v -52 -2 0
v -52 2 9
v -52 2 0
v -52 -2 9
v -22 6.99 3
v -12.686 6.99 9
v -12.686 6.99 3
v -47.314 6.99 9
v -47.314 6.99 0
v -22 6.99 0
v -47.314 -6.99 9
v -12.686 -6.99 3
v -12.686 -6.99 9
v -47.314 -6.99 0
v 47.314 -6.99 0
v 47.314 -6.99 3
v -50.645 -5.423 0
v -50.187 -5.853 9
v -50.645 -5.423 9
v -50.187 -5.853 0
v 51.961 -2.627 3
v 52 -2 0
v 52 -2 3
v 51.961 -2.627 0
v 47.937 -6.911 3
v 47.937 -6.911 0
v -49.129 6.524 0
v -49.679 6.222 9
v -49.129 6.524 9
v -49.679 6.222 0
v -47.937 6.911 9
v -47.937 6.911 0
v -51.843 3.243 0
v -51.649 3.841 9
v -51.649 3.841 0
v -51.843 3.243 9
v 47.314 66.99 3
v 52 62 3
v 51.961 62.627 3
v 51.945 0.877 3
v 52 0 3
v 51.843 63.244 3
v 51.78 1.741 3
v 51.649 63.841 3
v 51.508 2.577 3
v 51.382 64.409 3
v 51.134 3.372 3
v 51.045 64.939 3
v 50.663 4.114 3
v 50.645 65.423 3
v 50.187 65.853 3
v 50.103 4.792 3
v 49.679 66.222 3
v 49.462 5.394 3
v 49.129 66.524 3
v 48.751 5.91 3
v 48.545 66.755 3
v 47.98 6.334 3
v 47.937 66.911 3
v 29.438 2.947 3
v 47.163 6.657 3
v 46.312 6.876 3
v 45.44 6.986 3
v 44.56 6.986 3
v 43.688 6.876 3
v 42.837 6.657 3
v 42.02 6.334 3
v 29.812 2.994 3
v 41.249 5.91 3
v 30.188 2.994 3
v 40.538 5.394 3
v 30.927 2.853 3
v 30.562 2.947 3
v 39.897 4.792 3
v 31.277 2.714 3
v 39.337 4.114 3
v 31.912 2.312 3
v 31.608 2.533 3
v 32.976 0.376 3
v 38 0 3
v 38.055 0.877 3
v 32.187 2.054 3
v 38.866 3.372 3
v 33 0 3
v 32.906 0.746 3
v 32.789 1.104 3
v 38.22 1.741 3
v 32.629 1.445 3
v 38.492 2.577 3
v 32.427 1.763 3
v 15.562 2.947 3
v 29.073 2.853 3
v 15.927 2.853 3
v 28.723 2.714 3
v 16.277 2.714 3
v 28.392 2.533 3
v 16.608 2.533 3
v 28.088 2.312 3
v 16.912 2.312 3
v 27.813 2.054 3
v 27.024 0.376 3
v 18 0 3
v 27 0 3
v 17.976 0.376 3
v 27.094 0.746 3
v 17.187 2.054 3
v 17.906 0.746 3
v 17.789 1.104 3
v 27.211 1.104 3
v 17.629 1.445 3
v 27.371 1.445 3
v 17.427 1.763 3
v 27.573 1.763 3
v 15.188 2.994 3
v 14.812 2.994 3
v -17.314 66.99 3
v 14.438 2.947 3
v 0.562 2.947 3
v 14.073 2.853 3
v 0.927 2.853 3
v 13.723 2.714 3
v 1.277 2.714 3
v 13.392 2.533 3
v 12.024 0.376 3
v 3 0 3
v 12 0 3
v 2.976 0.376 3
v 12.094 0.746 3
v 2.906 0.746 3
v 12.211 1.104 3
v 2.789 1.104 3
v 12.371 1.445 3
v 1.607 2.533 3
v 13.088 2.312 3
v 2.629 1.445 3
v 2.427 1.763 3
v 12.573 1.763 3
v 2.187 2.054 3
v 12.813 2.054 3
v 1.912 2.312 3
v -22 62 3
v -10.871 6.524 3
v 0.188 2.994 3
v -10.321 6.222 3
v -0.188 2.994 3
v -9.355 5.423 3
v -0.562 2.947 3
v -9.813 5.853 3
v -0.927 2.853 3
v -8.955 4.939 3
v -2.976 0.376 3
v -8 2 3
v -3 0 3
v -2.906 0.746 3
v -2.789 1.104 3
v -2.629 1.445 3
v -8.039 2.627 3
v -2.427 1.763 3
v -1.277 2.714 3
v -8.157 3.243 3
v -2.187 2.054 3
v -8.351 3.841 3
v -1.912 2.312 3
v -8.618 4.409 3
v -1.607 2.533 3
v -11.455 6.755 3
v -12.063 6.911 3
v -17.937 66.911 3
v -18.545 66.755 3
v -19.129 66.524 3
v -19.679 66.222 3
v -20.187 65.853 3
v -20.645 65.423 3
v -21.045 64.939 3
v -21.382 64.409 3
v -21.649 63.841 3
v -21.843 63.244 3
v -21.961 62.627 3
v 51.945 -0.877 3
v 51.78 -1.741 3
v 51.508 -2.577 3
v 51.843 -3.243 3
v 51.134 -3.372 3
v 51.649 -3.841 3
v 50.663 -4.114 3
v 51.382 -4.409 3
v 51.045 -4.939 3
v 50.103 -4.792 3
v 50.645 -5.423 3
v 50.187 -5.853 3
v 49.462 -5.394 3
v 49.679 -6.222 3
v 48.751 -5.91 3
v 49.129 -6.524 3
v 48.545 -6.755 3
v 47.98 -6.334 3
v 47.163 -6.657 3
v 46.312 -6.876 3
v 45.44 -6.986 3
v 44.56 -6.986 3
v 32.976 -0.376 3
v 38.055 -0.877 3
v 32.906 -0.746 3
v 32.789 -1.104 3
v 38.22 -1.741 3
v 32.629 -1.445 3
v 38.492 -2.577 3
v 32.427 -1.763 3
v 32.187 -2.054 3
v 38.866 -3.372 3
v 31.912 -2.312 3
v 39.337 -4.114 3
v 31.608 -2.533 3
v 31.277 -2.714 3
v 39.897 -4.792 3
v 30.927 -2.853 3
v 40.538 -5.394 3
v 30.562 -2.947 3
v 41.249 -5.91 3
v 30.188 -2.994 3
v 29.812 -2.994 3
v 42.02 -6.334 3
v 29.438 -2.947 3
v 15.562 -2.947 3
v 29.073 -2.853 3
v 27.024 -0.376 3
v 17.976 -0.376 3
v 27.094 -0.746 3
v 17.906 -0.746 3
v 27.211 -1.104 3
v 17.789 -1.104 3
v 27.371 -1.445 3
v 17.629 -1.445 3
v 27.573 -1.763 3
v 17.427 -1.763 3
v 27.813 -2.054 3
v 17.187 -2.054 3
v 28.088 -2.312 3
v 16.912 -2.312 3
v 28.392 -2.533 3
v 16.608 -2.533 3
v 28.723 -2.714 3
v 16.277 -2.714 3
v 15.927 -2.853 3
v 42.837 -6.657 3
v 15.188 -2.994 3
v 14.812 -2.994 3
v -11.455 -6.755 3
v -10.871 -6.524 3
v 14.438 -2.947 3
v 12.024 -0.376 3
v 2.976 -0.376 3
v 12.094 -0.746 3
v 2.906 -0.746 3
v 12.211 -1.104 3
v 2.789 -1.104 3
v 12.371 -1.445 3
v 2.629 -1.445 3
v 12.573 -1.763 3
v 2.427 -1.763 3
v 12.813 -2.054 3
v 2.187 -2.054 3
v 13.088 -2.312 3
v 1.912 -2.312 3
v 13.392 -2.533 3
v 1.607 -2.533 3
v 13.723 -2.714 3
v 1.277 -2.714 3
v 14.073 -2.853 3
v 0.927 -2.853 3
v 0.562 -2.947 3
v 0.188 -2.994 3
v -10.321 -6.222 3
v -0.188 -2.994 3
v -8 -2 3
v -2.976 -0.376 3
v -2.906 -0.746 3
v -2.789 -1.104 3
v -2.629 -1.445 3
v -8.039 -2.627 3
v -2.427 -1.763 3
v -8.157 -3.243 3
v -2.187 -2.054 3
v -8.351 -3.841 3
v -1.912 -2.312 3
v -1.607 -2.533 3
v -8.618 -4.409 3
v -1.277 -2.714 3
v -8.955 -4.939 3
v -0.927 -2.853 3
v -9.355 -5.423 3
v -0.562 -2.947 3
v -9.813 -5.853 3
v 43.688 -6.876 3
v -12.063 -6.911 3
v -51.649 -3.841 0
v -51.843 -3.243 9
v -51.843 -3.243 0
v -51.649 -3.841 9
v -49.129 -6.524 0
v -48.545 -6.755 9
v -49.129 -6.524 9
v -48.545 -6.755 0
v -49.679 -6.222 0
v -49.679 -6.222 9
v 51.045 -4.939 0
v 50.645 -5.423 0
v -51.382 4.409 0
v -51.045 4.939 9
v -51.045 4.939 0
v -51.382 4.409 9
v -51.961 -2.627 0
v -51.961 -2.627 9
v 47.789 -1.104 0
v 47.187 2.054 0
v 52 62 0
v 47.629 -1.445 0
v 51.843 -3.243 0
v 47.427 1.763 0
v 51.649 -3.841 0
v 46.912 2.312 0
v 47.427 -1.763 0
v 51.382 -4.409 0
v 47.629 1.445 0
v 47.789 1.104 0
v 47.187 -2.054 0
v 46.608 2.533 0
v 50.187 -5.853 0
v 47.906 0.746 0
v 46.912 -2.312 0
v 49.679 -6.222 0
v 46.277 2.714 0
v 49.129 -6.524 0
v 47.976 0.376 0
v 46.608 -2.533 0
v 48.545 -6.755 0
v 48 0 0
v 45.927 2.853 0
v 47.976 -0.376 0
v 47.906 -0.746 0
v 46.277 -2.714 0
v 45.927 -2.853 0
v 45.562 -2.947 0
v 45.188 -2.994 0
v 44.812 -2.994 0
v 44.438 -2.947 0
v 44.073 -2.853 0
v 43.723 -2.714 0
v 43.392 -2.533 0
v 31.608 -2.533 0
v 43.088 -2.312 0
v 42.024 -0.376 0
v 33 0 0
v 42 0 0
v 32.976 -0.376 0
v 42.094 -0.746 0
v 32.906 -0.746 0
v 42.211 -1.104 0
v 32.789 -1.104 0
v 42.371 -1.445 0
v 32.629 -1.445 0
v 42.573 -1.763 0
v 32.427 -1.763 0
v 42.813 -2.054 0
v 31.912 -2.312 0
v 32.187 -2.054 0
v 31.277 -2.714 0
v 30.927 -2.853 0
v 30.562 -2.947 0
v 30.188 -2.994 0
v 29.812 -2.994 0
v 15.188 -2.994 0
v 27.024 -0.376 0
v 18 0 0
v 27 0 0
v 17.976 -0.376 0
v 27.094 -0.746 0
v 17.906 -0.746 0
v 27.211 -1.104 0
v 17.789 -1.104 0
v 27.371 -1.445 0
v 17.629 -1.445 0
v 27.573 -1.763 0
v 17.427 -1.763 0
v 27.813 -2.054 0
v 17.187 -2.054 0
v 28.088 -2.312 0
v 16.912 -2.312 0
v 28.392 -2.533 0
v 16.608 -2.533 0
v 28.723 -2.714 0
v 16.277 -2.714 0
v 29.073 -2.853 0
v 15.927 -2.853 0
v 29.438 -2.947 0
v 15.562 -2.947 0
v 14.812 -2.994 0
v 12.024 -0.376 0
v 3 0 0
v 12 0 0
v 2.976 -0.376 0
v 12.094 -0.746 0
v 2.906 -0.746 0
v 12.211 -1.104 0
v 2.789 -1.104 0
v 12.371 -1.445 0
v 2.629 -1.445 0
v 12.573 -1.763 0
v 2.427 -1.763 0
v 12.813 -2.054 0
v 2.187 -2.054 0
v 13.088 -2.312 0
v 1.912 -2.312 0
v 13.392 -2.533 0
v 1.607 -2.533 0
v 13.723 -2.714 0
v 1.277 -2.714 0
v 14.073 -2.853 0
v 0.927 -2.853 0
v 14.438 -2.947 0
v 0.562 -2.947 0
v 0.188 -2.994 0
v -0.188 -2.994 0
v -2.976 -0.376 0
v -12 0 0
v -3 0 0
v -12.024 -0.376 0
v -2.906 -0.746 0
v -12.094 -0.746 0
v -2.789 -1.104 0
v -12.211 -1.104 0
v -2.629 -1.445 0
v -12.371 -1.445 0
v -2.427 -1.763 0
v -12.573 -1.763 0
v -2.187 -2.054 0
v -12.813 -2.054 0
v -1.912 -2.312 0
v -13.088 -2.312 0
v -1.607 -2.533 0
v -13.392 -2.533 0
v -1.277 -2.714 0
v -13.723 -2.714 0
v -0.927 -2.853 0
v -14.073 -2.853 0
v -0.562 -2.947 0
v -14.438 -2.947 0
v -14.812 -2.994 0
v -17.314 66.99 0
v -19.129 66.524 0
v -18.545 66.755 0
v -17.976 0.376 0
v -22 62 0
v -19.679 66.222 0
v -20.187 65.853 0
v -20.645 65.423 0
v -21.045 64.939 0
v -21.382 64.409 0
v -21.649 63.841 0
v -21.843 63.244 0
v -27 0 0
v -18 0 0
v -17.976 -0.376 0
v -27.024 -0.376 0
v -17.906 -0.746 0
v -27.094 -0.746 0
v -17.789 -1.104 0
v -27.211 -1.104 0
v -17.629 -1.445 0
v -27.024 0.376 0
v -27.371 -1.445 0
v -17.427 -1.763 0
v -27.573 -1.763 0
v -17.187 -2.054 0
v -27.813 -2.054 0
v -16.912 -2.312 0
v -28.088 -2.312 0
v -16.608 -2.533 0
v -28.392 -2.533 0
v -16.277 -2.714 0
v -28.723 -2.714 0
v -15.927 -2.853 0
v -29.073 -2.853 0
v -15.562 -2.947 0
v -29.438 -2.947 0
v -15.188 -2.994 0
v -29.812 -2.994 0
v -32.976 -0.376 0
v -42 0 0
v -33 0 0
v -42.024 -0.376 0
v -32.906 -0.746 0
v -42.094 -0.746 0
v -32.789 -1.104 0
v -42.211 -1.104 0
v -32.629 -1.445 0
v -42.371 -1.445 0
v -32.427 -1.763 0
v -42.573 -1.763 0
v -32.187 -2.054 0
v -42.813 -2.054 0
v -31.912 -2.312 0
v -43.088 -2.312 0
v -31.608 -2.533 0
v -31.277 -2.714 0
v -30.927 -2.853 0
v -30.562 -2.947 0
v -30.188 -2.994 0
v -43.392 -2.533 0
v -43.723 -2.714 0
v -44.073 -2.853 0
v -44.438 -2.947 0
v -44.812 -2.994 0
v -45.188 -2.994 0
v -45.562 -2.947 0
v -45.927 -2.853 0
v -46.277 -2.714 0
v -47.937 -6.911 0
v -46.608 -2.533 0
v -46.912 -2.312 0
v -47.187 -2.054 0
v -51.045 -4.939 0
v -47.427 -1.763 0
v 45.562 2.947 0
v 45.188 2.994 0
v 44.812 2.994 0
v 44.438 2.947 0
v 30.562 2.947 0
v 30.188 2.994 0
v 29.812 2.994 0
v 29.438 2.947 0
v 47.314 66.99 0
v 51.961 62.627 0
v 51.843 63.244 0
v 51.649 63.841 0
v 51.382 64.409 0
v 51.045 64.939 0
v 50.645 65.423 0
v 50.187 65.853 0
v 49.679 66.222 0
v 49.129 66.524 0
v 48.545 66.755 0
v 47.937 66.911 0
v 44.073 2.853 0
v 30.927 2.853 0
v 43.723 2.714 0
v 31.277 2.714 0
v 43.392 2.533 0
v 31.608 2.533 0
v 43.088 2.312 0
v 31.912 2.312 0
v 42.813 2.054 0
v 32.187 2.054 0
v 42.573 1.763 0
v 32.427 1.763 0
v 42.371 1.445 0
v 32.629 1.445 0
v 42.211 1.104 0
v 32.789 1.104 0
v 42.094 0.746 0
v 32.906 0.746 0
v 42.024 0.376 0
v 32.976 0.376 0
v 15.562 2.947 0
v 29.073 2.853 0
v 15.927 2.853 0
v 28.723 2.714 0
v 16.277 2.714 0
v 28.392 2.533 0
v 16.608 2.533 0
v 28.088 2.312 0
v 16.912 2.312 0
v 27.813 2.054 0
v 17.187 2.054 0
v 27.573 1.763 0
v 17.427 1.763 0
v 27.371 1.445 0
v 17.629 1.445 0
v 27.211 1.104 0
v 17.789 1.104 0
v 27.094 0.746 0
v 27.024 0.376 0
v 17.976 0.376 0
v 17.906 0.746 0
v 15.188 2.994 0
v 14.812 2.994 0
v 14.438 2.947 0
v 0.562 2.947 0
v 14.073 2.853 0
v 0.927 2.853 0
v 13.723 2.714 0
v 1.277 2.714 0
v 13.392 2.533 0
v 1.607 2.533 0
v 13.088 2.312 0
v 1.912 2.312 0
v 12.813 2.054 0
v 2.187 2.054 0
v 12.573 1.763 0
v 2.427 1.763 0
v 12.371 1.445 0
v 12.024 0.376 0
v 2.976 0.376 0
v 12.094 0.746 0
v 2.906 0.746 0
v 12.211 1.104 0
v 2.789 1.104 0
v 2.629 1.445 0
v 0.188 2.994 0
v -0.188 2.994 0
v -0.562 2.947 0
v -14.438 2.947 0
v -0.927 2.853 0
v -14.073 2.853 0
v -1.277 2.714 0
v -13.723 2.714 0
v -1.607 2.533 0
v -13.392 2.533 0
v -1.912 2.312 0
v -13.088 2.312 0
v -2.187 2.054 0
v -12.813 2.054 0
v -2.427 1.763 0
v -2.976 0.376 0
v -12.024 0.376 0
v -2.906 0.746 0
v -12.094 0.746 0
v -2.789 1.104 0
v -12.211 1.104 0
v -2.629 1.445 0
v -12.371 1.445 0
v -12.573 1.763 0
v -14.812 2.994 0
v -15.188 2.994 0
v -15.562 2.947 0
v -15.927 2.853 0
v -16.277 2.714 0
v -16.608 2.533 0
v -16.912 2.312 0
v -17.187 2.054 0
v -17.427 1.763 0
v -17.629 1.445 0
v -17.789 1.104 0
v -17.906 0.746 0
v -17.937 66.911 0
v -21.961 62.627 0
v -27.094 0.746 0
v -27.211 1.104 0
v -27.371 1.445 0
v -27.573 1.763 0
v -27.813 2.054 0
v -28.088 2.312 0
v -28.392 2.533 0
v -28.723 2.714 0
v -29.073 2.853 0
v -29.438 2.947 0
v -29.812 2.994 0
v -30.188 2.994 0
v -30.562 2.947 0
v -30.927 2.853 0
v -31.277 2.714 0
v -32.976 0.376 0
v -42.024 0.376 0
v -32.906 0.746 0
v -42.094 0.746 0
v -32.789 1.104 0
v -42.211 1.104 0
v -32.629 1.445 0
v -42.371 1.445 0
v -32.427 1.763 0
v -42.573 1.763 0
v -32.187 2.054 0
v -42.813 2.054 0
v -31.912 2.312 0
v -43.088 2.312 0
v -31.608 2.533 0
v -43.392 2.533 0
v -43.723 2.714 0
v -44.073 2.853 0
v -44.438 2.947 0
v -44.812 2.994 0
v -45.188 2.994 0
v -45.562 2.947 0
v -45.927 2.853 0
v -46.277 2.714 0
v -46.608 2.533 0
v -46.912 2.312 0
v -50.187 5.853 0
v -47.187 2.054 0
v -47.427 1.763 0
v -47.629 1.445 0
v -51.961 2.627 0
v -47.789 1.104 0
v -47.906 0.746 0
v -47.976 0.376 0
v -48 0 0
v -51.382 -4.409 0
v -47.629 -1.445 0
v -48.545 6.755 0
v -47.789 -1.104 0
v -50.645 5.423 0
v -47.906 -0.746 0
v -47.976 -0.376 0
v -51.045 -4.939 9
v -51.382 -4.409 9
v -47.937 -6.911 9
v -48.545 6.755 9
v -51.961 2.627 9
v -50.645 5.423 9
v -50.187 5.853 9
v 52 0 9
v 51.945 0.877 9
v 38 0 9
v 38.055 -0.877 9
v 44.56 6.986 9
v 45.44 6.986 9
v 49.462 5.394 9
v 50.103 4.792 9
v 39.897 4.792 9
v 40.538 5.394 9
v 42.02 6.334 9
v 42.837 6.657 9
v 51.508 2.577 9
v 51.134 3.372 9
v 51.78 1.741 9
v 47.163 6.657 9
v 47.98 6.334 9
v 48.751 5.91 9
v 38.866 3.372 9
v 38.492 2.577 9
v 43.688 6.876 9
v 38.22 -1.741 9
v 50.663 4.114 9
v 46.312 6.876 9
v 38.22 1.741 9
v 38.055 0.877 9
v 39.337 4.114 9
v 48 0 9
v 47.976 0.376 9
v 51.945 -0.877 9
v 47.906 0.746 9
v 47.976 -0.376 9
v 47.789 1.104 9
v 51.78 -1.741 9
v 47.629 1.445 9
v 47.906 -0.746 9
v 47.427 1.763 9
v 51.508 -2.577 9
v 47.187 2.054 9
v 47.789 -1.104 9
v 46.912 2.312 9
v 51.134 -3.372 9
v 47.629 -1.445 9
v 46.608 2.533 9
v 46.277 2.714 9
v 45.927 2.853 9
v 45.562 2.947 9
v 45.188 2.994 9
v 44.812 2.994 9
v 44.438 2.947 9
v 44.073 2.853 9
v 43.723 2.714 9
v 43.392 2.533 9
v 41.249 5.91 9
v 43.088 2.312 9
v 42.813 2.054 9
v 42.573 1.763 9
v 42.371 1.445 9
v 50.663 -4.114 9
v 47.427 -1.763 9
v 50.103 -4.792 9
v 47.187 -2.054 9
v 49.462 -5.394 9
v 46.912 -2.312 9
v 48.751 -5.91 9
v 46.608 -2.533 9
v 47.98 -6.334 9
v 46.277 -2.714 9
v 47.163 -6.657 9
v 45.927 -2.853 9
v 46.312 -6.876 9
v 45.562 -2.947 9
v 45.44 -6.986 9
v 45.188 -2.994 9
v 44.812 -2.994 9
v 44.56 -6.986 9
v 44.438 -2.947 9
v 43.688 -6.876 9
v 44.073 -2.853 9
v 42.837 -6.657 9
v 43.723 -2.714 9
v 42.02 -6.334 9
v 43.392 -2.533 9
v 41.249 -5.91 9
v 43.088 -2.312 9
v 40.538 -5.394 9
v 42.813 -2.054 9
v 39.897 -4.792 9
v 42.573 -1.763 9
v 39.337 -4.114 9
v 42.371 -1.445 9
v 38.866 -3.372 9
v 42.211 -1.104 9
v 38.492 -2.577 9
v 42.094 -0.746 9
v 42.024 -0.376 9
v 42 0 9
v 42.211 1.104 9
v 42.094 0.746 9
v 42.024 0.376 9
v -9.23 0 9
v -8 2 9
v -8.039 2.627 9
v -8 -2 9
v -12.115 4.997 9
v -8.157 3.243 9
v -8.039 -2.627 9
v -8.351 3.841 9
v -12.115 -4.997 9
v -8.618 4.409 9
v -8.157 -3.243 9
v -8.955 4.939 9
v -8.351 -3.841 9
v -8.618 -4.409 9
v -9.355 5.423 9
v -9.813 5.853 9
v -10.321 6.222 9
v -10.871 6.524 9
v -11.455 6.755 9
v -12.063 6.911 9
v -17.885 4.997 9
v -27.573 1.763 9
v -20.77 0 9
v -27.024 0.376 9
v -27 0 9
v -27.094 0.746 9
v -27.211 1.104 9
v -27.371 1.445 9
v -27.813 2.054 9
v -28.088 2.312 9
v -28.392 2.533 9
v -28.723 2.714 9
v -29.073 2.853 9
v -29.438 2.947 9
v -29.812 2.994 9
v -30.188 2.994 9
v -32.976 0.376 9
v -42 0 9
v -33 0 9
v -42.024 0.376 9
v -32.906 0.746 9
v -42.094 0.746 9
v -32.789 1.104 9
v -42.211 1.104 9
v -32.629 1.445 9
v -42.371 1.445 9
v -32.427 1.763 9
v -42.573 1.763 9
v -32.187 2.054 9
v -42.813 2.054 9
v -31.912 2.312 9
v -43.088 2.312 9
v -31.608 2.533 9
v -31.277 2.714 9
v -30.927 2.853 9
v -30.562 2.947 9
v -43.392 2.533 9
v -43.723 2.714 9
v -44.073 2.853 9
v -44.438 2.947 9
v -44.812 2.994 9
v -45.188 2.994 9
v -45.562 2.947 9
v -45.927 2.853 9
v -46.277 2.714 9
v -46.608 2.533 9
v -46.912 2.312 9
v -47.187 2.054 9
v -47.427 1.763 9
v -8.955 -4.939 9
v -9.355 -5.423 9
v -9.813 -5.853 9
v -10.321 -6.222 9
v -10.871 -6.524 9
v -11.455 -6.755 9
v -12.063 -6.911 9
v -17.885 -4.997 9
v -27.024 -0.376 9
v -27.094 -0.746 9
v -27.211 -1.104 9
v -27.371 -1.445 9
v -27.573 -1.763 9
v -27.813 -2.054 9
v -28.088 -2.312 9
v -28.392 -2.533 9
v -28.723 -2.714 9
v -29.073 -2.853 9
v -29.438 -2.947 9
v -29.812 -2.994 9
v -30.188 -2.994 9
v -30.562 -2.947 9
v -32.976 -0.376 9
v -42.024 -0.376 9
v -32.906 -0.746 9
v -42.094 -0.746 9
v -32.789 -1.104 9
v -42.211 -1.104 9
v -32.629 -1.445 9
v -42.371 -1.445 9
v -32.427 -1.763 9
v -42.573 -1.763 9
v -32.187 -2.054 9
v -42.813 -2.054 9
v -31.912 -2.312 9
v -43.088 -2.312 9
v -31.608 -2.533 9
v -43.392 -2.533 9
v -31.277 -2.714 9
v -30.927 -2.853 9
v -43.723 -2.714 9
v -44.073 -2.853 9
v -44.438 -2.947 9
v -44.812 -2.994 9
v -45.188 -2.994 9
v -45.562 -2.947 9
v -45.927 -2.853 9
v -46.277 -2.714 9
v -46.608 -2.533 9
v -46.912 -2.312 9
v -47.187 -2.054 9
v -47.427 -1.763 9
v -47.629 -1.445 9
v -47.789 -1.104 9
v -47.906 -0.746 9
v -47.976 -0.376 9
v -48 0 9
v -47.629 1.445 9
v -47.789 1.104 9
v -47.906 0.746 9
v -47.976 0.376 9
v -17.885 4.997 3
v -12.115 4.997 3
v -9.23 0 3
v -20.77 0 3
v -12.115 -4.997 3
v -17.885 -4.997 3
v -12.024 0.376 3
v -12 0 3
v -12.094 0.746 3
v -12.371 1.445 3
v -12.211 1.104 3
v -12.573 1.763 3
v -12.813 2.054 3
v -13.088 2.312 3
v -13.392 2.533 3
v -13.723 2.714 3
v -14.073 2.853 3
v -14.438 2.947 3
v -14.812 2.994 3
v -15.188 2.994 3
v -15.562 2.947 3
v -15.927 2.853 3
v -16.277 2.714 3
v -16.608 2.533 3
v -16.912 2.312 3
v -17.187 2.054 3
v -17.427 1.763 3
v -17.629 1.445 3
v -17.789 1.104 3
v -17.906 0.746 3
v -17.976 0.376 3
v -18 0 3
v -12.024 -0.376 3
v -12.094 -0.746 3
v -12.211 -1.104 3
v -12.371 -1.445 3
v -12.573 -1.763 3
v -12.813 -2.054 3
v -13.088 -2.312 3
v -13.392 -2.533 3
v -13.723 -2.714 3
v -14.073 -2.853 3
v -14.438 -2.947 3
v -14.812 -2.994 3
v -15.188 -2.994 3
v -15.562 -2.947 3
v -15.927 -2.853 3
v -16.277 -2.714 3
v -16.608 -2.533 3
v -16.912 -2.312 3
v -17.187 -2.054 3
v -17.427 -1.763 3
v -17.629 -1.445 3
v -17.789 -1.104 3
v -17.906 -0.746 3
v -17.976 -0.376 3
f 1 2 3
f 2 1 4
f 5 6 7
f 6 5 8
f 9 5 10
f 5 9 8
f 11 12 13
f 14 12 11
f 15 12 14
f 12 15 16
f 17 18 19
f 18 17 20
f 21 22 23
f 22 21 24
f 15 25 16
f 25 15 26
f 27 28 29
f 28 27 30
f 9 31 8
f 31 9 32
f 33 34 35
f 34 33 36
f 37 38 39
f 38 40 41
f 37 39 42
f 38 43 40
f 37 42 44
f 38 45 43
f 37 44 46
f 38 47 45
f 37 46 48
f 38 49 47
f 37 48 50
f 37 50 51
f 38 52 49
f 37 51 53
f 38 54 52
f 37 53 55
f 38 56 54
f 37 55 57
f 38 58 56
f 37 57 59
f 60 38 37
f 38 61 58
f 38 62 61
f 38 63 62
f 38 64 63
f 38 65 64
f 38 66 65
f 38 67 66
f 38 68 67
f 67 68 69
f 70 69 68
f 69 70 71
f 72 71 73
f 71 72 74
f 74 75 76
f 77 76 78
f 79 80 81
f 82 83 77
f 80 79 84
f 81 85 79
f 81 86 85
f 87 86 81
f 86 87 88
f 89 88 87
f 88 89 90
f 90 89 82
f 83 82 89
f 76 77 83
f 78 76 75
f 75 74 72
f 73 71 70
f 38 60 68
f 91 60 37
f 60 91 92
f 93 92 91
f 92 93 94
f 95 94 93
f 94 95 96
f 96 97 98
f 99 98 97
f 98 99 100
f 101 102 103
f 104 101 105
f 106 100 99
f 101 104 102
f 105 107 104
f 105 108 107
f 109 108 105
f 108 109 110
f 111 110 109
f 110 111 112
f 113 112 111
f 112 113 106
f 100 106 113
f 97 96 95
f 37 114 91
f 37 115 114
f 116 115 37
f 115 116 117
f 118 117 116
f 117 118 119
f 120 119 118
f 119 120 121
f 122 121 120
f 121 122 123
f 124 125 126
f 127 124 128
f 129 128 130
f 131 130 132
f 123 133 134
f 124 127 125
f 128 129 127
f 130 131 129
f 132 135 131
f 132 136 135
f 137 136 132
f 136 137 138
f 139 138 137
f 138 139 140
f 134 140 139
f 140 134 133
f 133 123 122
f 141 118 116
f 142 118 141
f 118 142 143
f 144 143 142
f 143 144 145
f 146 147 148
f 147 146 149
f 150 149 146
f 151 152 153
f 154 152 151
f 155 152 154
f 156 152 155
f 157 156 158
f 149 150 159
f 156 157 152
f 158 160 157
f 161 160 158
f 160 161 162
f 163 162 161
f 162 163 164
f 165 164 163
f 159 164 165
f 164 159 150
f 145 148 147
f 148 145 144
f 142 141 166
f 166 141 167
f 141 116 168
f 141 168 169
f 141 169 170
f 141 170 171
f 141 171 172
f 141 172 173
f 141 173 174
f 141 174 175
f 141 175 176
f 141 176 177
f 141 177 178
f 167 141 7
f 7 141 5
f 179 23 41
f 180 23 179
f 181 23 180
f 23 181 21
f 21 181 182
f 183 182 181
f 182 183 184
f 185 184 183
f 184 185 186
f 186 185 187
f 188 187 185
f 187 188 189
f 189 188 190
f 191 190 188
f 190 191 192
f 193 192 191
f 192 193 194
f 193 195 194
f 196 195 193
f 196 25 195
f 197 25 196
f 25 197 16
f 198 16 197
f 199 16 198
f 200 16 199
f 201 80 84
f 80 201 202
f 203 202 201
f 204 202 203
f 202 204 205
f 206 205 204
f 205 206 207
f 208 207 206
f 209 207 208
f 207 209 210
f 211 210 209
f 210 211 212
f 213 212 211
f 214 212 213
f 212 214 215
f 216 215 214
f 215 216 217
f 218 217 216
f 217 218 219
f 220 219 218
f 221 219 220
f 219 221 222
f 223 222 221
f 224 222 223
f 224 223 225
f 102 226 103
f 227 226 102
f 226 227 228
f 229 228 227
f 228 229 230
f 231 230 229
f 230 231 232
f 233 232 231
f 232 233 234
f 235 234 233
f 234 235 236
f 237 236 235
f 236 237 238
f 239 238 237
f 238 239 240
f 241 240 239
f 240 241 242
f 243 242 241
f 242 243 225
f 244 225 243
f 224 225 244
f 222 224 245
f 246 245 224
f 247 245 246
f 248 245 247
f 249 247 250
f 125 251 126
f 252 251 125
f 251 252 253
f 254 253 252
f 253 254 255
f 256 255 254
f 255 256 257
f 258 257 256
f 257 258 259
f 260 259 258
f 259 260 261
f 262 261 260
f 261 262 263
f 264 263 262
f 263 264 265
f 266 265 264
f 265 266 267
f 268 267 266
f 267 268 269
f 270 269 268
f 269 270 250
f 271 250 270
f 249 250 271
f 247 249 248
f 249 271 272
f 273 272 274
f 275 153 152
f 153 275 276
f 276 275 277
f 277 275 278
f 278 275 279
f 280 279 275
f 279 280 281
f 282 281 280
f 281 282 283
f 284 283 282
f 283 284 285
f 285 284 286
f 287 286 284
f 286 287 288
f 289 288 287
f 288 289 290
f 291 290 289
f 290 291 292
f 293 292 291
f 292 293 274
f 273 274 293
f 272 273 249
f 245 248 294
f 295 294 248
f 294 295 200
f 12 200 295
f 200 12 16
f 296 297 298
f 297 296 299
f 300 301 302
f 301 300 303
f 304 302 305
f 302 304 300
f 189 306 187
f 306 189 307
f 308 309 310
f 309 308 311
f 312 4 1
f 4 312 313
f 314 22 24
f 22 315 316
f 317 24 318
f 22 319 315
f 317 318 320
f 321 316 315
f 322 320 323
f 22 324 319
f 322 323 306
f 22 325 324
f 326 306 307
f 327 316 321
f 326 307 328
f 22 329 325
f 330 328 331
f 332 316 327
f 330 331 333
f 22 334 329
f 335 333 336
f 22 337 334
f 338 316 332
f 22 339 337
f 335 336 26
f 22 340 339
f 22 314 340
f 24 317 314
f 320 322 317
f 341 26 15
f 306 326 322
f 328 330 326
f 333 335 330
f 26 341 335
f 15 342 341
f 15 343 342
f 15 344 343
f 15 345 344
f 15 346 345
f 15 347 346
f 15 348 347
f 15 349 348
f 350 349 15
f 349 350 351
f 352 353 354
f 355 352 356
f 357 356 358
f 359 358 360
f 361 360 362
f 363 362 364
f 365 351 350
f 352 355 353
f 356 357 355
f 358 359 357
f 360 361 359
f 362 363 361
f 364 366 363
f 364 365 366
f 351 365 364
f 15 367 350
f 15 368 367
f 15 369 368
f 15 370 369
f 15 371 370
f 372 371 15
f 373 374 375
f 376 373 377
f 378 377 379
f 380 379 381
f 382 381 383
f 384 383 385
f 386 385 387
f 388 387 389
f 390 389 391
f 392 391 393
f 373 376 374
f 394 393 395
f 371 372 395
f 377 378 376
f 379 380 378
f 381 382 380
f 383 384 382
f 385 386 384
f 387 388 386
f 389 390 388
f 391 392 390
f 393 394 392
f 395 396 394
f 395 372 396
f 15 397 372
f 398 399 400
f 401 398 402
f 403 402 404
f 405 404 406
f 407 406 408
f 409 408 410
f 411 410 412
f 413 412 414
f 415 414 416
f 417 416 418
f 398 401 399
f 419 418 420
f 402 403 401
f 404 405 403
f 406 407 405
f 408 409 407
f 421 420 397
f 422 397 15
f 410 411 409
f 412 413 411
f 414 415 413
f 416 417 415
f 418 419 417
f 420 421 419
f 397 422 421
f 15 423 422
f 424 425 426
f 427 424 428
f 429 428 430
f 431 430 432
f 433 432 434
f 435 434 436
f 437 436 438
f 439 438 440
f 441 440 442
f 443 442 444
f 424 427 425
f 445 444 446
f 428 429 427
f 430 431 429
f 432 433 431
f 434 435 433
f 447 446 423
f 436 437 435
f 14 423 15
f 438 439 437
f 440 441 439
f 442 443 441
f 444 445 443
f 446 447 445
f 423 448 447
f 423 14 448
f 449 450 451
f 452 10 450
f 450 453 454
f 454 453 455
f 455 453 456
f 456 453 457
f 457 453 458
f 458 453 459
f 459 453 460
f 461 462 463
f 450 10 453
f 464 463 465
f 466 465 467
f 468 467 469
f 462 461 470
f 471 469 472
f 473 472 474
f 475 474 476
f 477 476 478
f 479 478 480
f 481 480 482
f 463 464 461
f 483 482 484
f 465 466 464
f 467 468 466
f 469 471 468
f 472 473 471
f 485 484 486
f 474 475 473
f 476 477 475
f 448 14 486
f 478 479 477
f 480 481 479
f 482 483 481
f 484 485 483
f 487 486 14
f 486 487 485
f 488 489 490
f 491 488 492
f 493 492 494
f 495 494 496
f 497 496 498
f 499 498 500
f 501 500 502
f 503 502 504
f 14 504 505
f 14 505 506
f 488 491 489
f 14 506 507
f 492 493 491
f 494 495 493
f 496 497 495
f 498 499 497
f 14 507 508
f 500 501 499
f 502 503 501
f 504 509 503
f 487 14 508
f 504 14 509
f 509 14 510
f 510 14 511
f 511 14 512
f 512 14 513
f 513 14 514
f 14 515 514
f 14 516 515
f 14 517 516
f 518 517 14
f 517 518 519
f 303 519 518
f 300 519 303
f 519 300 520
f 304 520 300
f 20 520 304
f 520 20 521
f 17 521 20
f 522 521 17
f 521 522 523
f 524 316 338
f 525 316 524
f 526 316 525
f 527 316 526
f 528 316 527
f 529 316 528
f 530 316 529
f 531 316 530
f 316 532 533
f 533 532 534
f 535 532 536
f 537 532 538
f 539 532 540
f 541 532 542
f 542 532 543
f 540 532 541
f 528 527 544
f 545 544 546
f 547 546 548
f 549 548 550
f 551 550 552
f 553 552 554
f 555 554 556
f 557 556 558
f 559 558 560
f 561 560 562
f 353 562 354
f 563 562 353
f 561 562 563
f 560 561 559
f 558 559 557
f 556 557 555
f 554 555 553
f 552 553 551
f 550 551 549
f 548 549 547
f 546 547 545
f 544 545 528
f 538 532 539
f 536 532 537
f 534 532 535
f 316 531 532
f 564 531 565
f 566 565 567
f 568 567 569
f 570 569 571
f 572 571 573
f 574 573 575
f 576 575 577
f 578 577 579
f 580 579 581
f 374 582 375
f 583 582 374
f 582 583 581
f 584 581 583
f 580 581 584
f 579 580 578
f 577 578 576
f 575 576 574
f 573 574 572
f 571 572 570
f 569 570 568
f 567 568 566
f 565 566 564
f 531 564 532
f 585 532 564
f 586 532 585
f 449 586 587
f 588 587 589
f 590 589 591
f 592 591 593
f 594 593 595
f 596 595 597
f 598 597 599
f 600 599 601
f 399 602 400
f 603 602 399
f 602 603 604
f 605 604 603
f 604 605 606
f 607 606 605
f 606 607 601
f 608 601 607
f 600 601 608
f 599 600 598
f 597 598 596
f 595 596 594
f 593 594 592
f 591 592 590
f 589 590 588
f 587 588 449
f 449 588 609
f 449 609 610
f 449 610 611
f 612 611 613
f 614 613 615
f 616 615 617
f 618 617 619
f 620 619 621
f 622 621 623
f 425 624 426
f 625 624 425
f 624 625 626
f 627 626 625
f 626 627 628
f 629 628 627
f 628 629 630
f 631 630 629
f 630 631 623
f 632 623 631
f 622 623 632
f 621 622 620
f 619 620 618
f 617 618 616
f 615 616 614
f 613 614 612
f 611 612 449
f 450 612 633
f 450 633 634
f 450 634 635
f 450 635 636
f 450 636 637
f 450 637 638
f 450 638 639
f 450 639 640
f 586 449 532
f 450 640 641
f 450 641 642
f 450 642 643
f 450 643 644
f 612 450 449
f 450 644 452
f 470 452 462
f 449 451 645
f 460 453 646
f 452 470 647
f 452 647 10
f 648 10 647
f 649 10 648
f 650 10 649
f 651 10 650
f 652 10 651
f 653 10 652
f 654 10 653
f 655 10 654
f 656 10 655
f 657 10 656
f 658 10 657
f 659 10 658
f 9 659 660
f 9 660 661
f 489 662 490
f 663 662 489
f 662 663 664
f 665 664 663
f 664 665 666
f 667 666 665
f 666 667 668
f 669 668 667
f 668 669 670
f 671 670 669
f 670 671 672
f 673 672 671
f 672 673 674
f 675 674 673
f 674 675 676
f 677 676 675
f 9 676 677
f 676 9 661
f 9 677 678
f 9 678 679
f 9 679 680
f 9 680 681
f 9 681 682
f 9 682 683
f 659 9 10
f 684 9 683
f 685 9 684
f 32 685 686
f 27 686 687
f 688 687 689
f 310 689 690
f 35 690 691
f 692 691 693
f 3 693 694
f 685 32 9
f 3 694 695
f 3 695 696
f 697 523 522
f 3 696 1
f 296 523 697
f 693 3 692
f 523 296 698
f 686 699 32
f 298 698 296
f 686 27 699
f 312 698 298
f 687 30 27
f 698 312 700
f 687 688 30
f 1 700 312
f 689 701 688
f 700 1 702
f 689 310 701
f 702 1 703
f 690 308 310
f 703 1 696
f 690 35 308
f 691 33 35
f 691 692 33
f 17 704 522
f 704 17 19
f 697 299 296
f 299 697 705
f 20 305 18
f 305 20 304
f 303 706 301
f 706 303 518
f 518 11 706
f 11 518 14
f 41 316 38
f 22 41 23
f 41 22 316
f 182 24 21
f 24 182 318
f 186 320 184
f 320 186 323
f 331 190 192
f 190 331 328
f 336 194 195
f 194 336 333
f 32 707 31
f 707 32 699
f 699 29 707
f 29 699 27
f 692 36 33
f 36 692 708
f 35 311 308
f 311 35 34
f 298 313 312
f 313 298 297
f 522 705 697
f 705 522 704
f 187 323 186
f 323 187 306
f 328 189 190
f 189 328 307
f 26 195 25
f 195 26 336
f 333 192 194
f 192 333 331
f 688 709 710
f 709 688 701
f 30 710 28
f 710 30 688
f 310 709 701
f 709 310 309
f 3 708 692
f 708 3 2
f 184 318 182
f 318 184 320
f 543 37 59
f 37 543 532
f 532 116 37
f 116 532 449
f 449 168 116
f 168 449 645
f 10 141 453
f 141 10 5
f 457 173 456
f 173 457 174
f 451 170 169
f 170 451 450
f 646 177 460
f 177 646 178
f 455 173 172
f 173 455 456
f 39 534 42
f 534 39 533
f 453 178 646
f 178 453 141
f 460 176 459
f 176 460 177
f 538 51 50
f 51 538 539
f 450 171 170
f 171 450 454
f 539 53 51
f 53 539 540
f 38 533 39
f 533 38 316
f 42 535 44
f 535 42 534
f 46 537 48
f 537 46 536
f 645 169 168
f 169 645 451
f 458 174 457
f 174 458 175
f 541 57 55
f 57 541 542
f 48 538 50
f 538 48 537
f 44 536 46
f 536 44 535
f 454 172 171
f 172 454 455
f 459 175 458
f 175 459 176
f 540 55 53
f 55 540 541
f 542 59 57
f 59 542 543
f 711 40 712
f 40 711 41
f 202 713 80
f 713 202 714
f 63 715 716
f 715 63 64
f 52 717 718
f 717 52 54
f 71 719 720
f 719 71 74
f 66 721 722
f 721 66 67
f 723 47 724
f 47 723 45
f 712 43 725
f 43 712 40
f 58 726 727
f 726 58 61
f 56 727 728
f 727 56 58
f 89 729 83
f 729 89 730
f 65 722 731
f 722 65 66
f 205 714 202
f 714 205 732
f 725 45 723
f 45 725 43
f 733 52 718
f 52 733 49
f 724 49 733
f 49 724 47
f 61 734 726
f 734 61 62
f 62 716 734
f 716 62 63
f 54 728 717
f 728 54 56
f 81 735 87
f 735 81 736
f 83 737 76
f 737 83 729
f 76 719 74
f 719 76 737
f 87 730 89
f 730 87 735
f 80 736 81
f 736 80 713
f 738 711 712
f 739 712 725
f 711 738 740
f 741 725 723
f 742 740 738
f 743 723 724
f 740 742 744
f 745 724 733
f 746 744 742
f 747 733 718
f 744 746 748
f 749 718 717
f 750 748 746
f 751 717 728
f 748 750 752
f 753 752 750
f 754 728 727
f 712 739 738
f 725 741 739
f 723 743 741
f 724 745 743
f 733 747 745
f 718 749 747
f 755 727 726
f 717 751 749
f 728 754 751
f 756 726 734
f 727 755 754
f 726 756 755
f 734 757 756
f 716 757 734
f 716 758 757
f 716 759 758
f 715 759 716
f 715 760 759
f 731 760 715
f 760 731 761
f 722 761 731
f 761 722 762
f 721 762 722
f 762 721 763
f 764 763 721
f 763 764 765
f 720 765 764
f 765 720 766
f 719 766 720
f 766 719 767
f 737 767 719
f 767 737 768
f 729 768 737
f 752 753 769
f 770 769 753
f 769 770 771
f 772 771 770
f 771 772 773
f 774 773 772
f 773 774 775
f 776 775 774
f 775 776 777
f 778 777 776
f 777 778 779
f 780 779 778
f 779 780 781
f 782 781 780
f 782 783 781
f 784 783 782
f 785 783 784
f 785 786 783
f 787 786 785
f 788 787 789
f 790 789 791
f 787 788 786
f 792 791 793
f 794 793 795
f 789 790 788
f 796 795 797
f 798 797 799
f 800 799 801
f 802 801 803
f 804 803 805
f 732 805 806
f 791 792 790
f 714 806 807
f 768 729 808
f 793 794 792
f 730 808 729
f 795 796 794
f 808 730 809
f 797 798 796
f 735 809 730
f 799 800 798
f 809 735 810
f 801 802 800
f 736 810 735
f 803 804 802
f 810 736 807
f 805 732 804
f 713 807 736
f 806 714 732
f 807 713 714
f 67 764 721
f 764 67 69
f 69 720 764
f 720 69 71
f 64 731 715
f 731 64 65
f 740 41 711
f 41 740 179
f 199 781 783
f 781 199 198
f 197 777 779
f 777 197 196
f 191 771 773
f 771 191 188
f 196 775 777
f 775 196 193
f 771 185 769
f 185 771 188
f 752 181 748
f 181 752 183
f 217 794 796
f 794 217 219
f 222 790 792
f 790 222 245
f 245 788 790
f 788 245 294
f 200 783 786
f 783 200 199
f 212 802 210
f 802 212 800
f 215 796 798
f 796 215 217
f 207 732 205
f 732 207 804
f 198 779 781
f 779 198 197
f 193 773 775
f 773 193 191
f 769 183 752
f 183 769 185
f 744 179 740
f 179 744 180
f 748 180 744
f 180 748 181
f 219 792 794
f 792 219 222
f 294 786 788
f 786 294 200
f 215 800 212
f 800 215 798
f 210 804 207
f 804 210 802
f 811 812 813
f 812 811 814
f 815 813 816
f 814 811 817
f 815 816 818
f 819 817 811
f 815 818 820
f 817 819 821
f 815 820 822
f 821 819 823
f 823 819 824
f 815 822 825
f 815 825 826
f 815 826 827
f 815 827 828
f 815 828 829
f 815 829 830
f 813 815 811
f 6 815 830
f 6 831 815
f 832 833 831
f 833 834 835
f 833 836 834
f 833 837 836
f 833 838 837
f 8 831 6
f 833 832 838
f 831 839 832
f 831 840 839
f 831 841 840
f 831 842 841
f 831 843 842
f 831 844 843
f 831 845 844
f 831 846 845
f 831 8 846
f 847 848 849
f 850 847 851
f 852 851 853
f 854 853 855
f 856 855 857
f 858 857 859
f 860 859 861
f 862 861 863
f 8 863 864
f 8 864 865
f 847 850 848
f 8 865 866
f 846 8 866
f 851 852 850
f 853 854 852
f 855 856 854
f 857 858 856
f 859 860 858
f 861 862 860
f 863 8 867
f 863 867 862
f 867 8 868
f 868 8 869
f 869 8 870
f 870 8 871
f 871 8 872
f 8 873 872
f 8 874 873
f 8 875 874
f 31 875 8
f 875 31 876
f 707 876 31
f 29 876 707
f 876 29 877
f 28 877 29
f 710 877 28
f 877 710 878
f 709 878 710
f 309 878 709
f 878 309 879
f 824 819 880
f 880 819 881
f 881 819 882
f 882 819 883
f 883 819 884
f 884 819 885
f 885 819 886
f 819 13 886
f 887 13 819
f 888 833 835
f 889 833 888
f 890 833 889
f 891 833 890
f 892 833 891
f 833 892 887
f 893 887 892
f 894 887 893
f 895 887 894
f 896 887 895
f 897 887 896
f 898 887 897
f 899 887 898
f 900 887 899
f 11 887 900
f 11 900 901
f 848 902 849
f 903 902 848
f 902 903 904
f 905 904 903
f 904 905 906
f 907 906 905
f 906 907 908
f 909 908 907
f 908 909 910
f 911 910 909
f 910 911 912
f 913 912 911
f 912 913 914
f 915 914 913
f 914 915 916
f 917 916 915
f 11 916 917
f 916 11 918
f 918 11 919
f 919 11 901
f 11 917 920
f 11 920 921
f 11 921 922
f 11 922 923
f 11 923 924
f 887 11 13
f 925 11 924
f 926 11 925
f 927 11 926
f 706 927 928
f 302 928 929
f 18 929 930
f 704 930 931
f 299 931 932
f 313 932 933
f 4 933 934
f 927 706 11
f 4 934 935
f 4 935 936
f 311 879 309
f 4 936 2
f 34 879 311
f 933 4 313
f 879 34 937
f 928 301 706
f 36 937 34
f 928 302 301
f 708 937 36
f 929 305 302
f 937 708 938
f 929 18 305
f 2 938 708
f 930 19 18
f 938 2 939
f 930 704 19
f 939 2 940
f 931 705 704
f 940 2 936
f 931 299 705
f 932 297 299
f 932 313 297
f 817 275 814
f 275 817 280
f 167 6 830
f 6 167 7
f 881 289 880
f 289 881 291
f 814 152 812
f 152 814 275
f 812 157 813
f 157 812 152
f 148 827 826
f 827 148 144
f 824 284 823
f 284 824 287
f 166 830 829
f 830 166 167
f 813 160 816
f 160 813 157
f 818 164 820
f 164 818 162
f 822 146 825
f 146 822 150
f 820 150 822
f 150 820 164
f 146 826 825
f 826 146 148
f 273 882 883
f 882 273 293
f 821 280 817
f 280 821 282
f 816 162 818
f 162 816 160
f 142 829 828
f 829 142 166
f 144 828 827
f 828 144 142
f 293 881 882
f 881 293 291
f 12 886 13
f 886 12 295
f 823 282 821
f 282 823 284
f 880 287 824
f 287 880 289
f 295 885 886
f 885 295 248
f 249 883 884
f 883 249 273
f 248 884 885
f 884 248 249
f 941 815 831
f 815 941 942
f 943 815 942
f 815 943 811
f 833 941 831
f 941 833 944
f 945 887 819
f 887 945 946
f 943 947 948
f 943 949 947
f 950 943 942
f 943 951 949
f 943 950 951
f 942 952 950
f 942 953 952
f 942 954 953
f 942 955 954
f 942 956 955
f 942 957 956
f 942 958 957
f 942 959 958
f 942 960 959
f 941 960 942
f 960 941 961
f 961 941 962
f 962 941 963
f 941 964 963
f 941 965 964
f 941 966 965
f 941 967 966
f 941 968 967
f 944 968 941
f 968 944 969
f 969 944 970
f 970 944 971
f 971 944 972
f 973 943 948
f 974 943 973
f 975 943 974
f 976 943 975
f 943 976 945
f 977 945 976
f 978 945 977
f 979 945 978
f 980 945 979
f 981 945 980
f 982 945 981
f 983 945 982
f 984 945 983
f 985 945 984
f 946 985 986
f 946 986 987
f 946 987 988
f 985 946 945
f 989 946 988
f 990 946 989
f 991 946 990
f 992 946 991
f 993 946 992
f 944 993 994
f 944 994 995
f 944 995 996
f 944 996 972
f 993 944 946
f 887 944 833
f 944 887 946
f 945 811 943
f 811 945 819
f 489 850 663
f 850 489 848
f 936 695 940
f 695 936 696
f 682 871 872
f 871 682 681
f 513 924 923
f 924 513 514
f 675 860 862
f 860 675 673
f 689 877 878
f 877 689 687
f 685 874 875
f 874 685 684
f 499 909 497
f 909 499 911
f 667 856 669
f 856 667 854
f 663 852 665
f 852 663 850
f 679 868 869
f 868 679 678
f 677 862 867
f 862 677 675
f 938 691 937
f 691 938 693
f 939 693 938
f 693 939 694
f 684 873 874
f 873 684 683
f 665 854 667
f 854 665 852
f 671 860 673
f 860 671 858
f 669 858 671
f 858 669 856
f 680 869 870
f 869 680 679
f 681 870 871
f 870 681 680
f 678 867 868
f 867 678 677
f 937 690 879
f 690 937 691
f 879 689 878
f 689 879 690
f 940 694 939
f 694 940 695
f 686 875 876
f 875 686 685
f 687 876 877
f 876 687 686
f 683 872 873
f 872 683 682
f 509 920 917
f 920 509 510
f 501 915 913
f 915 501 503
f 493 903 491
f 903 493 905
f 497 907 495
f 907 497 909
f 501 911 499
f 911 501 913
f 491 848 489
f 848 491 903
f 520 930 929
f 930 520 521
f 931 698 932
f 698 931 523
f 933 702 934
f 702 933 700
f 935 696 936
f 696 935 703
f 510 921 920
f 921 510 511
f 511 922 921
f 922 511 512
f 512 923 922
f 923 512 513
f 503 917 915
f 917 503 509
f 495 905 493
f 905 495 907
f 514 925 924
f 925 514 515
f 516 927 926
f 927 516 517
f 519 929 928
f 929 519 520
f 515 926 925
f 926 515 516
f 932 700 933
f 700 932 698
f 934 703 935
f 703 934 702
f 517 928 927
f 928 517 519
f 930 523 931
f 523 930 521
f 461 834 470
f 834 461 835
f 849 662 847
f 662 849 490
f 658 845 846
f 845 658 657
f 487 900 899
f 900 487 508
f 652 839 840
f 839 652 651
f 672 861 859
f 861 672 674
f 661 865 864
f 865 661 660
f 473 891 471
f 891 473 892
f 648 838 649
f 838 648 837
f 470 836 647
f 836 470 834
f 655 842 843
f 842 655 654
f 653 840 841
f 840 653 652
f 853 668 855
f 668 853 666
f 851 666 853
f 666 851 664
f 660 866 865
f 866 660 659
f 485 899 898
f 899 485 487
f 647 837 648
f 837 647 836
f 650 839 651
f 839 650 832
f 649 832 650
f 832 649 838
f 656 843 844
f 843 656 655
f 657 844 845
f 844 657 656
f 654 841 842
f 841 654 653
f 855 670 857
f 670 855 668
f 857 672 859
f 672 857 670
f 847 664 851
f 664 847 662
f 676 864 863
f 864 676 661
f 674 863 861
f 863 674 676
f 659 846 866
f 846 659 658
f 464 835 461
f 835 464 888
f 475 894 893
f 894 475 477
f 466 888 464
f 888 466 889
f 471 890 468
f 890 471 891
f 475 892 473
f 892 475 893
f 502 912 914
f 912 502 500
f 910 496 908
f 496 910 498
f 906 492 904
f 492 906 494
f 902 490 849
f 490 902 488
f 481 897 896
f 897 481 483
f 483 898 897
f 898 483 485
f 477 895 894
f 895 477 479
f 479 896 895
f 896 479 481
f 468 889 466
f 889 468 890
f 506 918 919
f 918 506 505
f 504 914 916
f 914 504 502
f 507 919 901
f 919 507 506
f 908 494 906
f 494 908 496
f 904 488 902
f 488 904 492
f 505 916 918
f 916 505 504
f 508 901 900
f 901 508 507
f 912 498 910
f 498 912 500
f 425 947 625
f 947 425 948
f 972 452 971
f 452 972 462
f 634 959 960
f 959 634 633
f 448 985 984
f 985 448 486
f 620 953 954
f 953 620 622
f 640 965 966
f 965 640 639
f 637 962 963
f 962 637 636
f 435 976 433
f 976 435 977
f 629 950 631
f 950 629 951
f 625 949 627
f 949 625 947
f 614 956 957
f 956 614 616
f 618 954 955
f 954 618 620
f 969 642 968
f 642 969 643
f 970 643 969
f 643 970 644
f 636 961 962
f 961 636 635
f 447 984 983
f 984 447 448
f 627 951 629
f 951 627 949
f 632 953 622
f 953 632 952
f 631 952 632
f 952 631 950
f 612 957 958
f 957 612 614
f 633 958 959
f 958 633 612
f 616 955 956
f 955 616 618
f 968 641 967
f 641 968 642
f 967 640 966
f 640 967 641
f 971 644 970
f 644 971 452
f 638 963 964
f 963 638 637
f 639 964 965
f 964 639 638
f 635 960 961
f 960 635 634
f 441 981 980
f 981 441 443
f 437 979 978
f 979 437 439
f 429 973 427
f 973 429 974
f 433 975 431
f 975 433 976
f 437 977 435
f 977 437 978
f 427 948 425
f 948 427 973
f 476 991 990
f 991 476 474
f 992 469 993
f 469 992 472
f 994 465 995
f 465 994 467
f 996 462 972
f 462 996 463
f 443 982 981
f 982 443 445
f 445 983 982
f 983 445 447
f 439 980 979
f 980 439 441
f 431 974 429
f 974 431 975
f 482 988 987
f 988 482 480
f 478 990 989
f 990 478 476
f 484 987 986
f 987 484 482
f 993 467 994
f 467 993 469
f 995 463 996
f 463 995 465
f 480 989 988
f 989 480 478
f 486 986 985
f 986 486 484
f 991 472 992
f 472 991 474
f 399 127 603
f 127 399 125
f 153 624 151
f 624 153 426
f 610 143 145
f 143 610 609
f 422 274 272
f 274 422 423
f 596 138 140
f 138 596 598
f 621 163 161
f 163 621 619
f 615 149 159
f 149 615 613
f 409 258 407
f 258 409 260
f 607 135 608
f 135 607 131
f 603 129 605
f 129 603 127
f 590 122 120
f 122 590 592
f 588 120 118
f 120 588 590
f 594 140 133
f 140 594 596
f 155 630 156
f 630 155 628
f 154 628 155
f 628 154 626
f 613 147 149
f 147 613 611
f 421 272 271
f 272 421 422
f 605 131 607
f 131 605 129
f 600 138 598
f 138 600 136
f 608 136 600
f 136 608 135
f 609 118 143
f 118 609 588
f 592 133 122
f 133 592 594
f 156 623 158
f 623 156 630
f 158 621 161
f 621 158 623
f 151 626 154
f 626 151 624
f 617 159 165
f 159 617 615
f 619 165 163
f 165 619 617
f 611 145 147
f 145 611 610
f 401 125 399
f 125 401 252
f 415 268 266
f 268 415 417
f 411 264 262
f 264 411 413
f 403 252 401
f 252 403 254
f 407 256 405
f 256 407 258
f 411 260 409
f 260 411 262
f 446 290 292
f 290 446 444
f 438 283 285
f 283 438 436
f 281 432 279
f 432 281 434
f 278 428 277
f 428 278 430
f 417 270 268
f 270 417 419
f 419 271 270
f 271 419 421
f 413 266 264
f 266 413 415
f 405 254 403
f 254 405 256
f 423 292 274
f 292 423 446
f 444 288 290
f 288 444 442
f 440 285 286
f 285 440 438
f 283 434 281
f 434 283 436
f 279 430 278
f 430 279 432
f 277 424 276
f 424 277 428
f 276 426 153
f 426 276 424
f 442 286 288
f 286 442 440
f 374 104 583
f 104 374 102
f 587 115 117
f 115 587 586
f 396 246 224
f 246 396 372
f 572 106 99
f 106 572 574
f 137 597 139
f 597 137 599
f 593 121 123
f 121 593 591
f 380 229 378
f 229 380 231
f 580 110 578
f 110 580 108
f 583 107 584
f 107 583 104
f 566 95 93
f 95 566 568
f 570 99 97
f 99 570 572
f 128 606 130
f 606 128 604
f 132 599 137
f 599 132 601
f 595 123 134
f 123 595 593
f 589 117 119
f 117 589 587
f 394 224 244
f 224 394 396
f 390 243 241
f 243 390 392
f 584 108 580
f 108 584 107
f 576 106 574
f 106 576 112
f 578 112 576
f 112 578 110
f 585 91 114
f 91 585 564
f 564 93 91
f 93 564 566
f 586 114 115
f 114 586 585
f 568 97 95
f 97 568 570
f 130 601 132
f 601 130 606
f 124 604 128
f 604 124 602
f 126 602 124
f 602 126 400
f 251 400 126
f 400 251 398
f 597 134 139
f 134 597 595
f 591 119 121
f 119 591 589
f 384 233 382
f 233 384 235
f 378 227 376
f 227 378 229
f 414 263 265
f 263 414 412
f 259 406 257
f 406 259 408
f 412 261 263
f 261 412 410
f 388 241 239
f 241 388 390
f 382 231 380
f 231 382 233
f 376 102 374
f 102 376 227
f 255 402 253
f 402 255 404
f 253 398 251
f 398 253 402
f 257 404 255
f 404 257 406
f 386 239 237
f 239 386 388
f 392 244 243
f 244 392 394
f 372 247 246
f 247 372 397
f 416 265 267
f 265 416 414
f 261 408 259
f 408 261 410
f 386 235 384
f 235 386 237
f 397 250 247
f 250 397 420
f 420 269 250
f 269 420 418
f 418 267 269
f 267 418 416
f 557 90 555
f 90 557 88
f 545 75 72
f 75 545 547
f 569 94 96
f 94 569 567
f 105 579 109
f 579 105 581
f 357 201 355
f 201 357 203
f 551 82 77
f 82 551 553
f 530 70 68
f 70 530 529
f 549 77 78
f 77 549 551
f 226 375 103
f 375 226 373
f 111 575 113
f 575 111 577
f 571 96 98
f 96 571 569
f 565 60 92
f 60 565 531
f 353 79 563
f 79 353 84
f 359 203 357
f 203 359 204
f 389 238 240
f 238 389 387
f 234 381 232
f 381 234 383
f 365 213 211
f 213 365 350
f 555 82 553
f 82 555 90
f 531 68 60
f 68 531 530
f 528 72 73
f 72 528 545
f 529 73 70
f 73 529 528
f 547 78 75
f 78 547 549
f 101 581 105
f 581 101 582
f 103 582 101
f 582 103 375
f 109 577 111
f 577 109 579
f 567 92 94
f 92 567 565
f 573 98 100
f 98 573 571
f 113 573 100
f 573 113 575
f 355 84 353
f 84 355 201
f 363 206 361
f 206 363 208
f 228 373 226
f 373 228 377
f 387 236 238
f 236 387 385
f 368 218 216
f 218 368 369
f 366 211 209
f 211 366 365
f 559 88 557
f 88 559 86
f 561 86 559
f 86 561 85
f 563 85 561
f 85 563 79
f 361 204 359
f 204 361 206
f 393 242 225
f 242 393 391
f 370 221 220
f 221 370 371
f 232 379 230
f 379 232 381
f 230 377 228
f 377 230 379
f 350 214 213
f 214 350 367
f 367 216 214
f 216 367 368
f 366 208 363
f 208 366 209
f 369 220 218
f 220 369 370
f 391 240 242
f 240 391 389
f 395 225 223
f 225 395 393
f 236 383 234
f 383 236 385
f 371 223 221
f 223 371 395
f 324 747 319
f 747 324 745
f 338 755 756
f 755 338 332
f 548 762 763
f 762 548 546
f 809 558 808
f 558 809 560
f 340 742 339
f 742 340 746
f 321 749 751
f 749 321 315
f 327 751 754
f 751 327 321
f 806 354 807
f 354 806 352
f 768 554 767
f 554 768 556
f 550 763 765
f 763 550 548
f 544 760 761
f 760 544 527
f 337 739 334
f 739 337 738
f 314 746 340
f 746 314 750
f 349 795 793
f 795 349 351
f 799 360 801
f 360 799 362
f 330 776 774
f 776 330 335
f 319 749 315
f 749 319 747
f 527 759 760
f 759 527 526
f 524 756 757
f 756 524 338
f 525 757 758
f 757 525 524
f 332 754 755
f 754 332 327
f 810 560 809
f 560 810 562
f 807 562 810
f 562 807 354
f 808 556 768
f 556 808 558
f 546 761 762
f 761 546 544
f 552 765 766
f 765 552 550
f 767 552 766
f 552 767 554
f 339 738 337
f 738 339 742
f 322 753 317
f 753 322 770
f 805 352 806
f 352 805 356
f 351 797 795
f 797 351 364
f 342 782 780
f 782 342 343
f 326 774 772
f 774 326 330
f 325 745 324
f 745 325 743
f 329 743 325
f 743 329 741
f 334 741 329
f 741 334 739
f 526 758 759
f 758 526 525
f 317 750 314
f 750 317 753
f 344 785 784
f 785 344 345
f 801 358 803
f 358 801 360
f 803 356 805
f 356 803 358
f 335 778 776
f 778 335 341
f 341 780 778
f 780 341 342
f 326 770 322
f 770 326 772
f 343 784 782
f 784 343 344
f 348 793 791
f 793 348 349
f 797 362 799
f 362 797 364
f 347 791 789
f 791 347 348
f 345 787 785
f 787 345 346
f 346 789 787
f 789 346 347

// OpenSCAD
$fn = 50;


difference() {
	union() {
		hull() {
			translate(v = [-47.0000000000, 2.0000000000, 0]) {
				cylinder(h = 3, r = 5);
			}
			translate(v = [47.0000000000, 2.0000000000, 0]) {
				cylinder(h = 3, r = 5);
			}
			translate(v = [-47.0000000000, -2.0000000000, 0]) {
				cylinder(h = 3, r = 5);
			}
			translate(v = [47.0000000000, -2.0000000000, 0]) {
				cylinder(h = 3, r = 5);
			}
		}
		translate(v = [15, 30, 0]) {
			hull() {
				translate(v = [-32.0000000000, 32.0000000000, 0]) {
					cylinder(h = 3, r = 5);
				}
				translate(v = [32.0000000000, 32.0000000000, 0]) {
					cylinder(h = 3, r = 5);
				}
				translate(v = [-32.0000000000, -32.0000000000, 0]) {
					cylinder(h = 3, r = 5);
				}
				translate(v = [32.0000000000, -32.0000000000, 0]) {
					cylinder(h = 3, r = 5);
				}
			}
		}
		translate(v = [45.0000000000, 0, 0]) {
			cylinder(h = 9, r = 7.0000000000);
		}
		translate(v = [-30.0000000000, 0, 0]) {
			hull() {
				translate(v = [-17.0000000000, 2.0000000000, 0]) {
					cylinder(h = 9, r = 5);
				}
				translate(v = [17.0000000000, 2.0000000000, 0]) {
					cylinder(h = 9, r = 5);
				}
				translate(v = [-17.0000000000, -2.0000000000, 0]) {
					cylinder(h = 9, r = 5);
				}
				translate(v = [17.0000000000, -2.0000000000, 0]) {
					cylinder(h = 9, r = 5);
				}
			}
		}
	}
	union() {
		translate(v = [-15.0000000000, 0, 9]) {
			rotate(a = [0, 0, 0]) {
				difference() {
					union() {
						translate(v = [0, 0, -6]) {
							linear_extrude(height = 6) {
								polygon(points = [[5.7700000000, 0.0000000000], [2.8850000000, 4.9969665798], [-2.8850000000, 4.9969665798], [-5.7700000000, 0.0000000000], [-2.8850000000, -4.9969665798], [2.8850000000, -4.9969665798]]);
							}
						}
					}
					union();
				}
			}
		}
		translate(v = [-45.0000000000, 0.0000000000, 0]) {
			translate(v = [0, 0, -100]) {
				cylinder(h = 200, r = 3.0000000000);
			}
		}
		translate(v = [-30.0000000000, 0.0000000000, 0]) {
			translate(v = [0, 0, -100]) {
				cylinder(h = 200, r = 3.0000000000);
			}
		}
		translate(v = [-15.0000000000, 0.0000000000, 0]) {
			translate(v = [0, 0, -100]) {
				cylinder(h = 200, r = 3.0000000000);
			}
		}
		translate(v = [0, 0, -100]) {
			cylinder(h = 200, r = 3.0000000000);
		}
		translate(v = [15.0000000000, 0.0000000000, 0]) {
			translate(v = [0, 0, -100]) {
				cylinder(h = 200, r = 3.0000000000);
			}
		}
		translate(v = [30.0000000000, 0.0000000000, 0]) {
			translate(v = [0, 0, -100]) {
				cylinder(h = 200, r = 3.0000000000);
			}
		}
		translate(v = [45.0000000000, 0.0000000000, 0]) {
			translate(v = [0, 0, -100]) {
				cylinder(h = 200, r = 3.0000000000);
			}
		}
	}
}
